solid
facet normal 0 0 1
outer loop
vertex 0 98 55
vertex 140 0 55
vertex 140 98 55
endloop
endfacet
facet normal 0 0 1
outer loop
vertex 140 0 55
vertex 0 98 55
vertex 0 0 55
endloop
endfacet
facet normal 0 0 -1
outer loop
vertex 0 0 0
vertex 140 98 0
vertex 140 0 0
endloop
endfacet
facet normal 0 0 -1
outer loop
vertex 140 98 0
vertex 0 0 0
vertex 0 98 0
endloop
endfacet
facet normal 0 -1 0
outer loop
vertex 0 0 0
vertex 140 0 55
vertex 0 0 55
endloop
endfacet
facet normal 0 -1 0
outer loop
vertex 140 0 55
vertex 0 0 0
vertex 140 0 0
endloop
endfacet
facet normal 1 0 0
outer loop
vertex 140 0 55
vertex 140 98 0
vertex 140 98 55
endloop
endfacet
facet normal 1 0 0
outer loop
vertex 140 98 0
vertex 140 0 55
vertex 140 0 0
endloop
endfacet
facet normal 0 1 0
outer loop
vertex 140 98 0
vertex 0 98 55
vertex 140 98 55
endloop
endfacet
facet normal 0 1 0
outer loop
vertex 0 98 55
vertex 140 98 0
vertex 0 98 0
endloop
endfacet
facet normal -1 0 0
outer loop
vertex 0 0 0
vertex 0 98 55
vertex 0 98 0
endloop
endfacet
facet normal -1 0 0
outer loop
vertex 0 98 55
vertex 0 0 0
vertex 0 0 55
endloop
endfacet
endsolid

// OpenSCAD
// Opentrons Flex Deck Riser
// loadName: opentrons_flex_deck_riser
// Auto-generated by labware_to_stl.py from Opentrons V2 labware definition

$fn = 64;

difference() {
    // ── Labware body ──────────────────────────────────────────────
    cube([140.0000, 98.0000, 55.0000]);

    // ── Well cutouts ──────────────────────────────────────────────
}
